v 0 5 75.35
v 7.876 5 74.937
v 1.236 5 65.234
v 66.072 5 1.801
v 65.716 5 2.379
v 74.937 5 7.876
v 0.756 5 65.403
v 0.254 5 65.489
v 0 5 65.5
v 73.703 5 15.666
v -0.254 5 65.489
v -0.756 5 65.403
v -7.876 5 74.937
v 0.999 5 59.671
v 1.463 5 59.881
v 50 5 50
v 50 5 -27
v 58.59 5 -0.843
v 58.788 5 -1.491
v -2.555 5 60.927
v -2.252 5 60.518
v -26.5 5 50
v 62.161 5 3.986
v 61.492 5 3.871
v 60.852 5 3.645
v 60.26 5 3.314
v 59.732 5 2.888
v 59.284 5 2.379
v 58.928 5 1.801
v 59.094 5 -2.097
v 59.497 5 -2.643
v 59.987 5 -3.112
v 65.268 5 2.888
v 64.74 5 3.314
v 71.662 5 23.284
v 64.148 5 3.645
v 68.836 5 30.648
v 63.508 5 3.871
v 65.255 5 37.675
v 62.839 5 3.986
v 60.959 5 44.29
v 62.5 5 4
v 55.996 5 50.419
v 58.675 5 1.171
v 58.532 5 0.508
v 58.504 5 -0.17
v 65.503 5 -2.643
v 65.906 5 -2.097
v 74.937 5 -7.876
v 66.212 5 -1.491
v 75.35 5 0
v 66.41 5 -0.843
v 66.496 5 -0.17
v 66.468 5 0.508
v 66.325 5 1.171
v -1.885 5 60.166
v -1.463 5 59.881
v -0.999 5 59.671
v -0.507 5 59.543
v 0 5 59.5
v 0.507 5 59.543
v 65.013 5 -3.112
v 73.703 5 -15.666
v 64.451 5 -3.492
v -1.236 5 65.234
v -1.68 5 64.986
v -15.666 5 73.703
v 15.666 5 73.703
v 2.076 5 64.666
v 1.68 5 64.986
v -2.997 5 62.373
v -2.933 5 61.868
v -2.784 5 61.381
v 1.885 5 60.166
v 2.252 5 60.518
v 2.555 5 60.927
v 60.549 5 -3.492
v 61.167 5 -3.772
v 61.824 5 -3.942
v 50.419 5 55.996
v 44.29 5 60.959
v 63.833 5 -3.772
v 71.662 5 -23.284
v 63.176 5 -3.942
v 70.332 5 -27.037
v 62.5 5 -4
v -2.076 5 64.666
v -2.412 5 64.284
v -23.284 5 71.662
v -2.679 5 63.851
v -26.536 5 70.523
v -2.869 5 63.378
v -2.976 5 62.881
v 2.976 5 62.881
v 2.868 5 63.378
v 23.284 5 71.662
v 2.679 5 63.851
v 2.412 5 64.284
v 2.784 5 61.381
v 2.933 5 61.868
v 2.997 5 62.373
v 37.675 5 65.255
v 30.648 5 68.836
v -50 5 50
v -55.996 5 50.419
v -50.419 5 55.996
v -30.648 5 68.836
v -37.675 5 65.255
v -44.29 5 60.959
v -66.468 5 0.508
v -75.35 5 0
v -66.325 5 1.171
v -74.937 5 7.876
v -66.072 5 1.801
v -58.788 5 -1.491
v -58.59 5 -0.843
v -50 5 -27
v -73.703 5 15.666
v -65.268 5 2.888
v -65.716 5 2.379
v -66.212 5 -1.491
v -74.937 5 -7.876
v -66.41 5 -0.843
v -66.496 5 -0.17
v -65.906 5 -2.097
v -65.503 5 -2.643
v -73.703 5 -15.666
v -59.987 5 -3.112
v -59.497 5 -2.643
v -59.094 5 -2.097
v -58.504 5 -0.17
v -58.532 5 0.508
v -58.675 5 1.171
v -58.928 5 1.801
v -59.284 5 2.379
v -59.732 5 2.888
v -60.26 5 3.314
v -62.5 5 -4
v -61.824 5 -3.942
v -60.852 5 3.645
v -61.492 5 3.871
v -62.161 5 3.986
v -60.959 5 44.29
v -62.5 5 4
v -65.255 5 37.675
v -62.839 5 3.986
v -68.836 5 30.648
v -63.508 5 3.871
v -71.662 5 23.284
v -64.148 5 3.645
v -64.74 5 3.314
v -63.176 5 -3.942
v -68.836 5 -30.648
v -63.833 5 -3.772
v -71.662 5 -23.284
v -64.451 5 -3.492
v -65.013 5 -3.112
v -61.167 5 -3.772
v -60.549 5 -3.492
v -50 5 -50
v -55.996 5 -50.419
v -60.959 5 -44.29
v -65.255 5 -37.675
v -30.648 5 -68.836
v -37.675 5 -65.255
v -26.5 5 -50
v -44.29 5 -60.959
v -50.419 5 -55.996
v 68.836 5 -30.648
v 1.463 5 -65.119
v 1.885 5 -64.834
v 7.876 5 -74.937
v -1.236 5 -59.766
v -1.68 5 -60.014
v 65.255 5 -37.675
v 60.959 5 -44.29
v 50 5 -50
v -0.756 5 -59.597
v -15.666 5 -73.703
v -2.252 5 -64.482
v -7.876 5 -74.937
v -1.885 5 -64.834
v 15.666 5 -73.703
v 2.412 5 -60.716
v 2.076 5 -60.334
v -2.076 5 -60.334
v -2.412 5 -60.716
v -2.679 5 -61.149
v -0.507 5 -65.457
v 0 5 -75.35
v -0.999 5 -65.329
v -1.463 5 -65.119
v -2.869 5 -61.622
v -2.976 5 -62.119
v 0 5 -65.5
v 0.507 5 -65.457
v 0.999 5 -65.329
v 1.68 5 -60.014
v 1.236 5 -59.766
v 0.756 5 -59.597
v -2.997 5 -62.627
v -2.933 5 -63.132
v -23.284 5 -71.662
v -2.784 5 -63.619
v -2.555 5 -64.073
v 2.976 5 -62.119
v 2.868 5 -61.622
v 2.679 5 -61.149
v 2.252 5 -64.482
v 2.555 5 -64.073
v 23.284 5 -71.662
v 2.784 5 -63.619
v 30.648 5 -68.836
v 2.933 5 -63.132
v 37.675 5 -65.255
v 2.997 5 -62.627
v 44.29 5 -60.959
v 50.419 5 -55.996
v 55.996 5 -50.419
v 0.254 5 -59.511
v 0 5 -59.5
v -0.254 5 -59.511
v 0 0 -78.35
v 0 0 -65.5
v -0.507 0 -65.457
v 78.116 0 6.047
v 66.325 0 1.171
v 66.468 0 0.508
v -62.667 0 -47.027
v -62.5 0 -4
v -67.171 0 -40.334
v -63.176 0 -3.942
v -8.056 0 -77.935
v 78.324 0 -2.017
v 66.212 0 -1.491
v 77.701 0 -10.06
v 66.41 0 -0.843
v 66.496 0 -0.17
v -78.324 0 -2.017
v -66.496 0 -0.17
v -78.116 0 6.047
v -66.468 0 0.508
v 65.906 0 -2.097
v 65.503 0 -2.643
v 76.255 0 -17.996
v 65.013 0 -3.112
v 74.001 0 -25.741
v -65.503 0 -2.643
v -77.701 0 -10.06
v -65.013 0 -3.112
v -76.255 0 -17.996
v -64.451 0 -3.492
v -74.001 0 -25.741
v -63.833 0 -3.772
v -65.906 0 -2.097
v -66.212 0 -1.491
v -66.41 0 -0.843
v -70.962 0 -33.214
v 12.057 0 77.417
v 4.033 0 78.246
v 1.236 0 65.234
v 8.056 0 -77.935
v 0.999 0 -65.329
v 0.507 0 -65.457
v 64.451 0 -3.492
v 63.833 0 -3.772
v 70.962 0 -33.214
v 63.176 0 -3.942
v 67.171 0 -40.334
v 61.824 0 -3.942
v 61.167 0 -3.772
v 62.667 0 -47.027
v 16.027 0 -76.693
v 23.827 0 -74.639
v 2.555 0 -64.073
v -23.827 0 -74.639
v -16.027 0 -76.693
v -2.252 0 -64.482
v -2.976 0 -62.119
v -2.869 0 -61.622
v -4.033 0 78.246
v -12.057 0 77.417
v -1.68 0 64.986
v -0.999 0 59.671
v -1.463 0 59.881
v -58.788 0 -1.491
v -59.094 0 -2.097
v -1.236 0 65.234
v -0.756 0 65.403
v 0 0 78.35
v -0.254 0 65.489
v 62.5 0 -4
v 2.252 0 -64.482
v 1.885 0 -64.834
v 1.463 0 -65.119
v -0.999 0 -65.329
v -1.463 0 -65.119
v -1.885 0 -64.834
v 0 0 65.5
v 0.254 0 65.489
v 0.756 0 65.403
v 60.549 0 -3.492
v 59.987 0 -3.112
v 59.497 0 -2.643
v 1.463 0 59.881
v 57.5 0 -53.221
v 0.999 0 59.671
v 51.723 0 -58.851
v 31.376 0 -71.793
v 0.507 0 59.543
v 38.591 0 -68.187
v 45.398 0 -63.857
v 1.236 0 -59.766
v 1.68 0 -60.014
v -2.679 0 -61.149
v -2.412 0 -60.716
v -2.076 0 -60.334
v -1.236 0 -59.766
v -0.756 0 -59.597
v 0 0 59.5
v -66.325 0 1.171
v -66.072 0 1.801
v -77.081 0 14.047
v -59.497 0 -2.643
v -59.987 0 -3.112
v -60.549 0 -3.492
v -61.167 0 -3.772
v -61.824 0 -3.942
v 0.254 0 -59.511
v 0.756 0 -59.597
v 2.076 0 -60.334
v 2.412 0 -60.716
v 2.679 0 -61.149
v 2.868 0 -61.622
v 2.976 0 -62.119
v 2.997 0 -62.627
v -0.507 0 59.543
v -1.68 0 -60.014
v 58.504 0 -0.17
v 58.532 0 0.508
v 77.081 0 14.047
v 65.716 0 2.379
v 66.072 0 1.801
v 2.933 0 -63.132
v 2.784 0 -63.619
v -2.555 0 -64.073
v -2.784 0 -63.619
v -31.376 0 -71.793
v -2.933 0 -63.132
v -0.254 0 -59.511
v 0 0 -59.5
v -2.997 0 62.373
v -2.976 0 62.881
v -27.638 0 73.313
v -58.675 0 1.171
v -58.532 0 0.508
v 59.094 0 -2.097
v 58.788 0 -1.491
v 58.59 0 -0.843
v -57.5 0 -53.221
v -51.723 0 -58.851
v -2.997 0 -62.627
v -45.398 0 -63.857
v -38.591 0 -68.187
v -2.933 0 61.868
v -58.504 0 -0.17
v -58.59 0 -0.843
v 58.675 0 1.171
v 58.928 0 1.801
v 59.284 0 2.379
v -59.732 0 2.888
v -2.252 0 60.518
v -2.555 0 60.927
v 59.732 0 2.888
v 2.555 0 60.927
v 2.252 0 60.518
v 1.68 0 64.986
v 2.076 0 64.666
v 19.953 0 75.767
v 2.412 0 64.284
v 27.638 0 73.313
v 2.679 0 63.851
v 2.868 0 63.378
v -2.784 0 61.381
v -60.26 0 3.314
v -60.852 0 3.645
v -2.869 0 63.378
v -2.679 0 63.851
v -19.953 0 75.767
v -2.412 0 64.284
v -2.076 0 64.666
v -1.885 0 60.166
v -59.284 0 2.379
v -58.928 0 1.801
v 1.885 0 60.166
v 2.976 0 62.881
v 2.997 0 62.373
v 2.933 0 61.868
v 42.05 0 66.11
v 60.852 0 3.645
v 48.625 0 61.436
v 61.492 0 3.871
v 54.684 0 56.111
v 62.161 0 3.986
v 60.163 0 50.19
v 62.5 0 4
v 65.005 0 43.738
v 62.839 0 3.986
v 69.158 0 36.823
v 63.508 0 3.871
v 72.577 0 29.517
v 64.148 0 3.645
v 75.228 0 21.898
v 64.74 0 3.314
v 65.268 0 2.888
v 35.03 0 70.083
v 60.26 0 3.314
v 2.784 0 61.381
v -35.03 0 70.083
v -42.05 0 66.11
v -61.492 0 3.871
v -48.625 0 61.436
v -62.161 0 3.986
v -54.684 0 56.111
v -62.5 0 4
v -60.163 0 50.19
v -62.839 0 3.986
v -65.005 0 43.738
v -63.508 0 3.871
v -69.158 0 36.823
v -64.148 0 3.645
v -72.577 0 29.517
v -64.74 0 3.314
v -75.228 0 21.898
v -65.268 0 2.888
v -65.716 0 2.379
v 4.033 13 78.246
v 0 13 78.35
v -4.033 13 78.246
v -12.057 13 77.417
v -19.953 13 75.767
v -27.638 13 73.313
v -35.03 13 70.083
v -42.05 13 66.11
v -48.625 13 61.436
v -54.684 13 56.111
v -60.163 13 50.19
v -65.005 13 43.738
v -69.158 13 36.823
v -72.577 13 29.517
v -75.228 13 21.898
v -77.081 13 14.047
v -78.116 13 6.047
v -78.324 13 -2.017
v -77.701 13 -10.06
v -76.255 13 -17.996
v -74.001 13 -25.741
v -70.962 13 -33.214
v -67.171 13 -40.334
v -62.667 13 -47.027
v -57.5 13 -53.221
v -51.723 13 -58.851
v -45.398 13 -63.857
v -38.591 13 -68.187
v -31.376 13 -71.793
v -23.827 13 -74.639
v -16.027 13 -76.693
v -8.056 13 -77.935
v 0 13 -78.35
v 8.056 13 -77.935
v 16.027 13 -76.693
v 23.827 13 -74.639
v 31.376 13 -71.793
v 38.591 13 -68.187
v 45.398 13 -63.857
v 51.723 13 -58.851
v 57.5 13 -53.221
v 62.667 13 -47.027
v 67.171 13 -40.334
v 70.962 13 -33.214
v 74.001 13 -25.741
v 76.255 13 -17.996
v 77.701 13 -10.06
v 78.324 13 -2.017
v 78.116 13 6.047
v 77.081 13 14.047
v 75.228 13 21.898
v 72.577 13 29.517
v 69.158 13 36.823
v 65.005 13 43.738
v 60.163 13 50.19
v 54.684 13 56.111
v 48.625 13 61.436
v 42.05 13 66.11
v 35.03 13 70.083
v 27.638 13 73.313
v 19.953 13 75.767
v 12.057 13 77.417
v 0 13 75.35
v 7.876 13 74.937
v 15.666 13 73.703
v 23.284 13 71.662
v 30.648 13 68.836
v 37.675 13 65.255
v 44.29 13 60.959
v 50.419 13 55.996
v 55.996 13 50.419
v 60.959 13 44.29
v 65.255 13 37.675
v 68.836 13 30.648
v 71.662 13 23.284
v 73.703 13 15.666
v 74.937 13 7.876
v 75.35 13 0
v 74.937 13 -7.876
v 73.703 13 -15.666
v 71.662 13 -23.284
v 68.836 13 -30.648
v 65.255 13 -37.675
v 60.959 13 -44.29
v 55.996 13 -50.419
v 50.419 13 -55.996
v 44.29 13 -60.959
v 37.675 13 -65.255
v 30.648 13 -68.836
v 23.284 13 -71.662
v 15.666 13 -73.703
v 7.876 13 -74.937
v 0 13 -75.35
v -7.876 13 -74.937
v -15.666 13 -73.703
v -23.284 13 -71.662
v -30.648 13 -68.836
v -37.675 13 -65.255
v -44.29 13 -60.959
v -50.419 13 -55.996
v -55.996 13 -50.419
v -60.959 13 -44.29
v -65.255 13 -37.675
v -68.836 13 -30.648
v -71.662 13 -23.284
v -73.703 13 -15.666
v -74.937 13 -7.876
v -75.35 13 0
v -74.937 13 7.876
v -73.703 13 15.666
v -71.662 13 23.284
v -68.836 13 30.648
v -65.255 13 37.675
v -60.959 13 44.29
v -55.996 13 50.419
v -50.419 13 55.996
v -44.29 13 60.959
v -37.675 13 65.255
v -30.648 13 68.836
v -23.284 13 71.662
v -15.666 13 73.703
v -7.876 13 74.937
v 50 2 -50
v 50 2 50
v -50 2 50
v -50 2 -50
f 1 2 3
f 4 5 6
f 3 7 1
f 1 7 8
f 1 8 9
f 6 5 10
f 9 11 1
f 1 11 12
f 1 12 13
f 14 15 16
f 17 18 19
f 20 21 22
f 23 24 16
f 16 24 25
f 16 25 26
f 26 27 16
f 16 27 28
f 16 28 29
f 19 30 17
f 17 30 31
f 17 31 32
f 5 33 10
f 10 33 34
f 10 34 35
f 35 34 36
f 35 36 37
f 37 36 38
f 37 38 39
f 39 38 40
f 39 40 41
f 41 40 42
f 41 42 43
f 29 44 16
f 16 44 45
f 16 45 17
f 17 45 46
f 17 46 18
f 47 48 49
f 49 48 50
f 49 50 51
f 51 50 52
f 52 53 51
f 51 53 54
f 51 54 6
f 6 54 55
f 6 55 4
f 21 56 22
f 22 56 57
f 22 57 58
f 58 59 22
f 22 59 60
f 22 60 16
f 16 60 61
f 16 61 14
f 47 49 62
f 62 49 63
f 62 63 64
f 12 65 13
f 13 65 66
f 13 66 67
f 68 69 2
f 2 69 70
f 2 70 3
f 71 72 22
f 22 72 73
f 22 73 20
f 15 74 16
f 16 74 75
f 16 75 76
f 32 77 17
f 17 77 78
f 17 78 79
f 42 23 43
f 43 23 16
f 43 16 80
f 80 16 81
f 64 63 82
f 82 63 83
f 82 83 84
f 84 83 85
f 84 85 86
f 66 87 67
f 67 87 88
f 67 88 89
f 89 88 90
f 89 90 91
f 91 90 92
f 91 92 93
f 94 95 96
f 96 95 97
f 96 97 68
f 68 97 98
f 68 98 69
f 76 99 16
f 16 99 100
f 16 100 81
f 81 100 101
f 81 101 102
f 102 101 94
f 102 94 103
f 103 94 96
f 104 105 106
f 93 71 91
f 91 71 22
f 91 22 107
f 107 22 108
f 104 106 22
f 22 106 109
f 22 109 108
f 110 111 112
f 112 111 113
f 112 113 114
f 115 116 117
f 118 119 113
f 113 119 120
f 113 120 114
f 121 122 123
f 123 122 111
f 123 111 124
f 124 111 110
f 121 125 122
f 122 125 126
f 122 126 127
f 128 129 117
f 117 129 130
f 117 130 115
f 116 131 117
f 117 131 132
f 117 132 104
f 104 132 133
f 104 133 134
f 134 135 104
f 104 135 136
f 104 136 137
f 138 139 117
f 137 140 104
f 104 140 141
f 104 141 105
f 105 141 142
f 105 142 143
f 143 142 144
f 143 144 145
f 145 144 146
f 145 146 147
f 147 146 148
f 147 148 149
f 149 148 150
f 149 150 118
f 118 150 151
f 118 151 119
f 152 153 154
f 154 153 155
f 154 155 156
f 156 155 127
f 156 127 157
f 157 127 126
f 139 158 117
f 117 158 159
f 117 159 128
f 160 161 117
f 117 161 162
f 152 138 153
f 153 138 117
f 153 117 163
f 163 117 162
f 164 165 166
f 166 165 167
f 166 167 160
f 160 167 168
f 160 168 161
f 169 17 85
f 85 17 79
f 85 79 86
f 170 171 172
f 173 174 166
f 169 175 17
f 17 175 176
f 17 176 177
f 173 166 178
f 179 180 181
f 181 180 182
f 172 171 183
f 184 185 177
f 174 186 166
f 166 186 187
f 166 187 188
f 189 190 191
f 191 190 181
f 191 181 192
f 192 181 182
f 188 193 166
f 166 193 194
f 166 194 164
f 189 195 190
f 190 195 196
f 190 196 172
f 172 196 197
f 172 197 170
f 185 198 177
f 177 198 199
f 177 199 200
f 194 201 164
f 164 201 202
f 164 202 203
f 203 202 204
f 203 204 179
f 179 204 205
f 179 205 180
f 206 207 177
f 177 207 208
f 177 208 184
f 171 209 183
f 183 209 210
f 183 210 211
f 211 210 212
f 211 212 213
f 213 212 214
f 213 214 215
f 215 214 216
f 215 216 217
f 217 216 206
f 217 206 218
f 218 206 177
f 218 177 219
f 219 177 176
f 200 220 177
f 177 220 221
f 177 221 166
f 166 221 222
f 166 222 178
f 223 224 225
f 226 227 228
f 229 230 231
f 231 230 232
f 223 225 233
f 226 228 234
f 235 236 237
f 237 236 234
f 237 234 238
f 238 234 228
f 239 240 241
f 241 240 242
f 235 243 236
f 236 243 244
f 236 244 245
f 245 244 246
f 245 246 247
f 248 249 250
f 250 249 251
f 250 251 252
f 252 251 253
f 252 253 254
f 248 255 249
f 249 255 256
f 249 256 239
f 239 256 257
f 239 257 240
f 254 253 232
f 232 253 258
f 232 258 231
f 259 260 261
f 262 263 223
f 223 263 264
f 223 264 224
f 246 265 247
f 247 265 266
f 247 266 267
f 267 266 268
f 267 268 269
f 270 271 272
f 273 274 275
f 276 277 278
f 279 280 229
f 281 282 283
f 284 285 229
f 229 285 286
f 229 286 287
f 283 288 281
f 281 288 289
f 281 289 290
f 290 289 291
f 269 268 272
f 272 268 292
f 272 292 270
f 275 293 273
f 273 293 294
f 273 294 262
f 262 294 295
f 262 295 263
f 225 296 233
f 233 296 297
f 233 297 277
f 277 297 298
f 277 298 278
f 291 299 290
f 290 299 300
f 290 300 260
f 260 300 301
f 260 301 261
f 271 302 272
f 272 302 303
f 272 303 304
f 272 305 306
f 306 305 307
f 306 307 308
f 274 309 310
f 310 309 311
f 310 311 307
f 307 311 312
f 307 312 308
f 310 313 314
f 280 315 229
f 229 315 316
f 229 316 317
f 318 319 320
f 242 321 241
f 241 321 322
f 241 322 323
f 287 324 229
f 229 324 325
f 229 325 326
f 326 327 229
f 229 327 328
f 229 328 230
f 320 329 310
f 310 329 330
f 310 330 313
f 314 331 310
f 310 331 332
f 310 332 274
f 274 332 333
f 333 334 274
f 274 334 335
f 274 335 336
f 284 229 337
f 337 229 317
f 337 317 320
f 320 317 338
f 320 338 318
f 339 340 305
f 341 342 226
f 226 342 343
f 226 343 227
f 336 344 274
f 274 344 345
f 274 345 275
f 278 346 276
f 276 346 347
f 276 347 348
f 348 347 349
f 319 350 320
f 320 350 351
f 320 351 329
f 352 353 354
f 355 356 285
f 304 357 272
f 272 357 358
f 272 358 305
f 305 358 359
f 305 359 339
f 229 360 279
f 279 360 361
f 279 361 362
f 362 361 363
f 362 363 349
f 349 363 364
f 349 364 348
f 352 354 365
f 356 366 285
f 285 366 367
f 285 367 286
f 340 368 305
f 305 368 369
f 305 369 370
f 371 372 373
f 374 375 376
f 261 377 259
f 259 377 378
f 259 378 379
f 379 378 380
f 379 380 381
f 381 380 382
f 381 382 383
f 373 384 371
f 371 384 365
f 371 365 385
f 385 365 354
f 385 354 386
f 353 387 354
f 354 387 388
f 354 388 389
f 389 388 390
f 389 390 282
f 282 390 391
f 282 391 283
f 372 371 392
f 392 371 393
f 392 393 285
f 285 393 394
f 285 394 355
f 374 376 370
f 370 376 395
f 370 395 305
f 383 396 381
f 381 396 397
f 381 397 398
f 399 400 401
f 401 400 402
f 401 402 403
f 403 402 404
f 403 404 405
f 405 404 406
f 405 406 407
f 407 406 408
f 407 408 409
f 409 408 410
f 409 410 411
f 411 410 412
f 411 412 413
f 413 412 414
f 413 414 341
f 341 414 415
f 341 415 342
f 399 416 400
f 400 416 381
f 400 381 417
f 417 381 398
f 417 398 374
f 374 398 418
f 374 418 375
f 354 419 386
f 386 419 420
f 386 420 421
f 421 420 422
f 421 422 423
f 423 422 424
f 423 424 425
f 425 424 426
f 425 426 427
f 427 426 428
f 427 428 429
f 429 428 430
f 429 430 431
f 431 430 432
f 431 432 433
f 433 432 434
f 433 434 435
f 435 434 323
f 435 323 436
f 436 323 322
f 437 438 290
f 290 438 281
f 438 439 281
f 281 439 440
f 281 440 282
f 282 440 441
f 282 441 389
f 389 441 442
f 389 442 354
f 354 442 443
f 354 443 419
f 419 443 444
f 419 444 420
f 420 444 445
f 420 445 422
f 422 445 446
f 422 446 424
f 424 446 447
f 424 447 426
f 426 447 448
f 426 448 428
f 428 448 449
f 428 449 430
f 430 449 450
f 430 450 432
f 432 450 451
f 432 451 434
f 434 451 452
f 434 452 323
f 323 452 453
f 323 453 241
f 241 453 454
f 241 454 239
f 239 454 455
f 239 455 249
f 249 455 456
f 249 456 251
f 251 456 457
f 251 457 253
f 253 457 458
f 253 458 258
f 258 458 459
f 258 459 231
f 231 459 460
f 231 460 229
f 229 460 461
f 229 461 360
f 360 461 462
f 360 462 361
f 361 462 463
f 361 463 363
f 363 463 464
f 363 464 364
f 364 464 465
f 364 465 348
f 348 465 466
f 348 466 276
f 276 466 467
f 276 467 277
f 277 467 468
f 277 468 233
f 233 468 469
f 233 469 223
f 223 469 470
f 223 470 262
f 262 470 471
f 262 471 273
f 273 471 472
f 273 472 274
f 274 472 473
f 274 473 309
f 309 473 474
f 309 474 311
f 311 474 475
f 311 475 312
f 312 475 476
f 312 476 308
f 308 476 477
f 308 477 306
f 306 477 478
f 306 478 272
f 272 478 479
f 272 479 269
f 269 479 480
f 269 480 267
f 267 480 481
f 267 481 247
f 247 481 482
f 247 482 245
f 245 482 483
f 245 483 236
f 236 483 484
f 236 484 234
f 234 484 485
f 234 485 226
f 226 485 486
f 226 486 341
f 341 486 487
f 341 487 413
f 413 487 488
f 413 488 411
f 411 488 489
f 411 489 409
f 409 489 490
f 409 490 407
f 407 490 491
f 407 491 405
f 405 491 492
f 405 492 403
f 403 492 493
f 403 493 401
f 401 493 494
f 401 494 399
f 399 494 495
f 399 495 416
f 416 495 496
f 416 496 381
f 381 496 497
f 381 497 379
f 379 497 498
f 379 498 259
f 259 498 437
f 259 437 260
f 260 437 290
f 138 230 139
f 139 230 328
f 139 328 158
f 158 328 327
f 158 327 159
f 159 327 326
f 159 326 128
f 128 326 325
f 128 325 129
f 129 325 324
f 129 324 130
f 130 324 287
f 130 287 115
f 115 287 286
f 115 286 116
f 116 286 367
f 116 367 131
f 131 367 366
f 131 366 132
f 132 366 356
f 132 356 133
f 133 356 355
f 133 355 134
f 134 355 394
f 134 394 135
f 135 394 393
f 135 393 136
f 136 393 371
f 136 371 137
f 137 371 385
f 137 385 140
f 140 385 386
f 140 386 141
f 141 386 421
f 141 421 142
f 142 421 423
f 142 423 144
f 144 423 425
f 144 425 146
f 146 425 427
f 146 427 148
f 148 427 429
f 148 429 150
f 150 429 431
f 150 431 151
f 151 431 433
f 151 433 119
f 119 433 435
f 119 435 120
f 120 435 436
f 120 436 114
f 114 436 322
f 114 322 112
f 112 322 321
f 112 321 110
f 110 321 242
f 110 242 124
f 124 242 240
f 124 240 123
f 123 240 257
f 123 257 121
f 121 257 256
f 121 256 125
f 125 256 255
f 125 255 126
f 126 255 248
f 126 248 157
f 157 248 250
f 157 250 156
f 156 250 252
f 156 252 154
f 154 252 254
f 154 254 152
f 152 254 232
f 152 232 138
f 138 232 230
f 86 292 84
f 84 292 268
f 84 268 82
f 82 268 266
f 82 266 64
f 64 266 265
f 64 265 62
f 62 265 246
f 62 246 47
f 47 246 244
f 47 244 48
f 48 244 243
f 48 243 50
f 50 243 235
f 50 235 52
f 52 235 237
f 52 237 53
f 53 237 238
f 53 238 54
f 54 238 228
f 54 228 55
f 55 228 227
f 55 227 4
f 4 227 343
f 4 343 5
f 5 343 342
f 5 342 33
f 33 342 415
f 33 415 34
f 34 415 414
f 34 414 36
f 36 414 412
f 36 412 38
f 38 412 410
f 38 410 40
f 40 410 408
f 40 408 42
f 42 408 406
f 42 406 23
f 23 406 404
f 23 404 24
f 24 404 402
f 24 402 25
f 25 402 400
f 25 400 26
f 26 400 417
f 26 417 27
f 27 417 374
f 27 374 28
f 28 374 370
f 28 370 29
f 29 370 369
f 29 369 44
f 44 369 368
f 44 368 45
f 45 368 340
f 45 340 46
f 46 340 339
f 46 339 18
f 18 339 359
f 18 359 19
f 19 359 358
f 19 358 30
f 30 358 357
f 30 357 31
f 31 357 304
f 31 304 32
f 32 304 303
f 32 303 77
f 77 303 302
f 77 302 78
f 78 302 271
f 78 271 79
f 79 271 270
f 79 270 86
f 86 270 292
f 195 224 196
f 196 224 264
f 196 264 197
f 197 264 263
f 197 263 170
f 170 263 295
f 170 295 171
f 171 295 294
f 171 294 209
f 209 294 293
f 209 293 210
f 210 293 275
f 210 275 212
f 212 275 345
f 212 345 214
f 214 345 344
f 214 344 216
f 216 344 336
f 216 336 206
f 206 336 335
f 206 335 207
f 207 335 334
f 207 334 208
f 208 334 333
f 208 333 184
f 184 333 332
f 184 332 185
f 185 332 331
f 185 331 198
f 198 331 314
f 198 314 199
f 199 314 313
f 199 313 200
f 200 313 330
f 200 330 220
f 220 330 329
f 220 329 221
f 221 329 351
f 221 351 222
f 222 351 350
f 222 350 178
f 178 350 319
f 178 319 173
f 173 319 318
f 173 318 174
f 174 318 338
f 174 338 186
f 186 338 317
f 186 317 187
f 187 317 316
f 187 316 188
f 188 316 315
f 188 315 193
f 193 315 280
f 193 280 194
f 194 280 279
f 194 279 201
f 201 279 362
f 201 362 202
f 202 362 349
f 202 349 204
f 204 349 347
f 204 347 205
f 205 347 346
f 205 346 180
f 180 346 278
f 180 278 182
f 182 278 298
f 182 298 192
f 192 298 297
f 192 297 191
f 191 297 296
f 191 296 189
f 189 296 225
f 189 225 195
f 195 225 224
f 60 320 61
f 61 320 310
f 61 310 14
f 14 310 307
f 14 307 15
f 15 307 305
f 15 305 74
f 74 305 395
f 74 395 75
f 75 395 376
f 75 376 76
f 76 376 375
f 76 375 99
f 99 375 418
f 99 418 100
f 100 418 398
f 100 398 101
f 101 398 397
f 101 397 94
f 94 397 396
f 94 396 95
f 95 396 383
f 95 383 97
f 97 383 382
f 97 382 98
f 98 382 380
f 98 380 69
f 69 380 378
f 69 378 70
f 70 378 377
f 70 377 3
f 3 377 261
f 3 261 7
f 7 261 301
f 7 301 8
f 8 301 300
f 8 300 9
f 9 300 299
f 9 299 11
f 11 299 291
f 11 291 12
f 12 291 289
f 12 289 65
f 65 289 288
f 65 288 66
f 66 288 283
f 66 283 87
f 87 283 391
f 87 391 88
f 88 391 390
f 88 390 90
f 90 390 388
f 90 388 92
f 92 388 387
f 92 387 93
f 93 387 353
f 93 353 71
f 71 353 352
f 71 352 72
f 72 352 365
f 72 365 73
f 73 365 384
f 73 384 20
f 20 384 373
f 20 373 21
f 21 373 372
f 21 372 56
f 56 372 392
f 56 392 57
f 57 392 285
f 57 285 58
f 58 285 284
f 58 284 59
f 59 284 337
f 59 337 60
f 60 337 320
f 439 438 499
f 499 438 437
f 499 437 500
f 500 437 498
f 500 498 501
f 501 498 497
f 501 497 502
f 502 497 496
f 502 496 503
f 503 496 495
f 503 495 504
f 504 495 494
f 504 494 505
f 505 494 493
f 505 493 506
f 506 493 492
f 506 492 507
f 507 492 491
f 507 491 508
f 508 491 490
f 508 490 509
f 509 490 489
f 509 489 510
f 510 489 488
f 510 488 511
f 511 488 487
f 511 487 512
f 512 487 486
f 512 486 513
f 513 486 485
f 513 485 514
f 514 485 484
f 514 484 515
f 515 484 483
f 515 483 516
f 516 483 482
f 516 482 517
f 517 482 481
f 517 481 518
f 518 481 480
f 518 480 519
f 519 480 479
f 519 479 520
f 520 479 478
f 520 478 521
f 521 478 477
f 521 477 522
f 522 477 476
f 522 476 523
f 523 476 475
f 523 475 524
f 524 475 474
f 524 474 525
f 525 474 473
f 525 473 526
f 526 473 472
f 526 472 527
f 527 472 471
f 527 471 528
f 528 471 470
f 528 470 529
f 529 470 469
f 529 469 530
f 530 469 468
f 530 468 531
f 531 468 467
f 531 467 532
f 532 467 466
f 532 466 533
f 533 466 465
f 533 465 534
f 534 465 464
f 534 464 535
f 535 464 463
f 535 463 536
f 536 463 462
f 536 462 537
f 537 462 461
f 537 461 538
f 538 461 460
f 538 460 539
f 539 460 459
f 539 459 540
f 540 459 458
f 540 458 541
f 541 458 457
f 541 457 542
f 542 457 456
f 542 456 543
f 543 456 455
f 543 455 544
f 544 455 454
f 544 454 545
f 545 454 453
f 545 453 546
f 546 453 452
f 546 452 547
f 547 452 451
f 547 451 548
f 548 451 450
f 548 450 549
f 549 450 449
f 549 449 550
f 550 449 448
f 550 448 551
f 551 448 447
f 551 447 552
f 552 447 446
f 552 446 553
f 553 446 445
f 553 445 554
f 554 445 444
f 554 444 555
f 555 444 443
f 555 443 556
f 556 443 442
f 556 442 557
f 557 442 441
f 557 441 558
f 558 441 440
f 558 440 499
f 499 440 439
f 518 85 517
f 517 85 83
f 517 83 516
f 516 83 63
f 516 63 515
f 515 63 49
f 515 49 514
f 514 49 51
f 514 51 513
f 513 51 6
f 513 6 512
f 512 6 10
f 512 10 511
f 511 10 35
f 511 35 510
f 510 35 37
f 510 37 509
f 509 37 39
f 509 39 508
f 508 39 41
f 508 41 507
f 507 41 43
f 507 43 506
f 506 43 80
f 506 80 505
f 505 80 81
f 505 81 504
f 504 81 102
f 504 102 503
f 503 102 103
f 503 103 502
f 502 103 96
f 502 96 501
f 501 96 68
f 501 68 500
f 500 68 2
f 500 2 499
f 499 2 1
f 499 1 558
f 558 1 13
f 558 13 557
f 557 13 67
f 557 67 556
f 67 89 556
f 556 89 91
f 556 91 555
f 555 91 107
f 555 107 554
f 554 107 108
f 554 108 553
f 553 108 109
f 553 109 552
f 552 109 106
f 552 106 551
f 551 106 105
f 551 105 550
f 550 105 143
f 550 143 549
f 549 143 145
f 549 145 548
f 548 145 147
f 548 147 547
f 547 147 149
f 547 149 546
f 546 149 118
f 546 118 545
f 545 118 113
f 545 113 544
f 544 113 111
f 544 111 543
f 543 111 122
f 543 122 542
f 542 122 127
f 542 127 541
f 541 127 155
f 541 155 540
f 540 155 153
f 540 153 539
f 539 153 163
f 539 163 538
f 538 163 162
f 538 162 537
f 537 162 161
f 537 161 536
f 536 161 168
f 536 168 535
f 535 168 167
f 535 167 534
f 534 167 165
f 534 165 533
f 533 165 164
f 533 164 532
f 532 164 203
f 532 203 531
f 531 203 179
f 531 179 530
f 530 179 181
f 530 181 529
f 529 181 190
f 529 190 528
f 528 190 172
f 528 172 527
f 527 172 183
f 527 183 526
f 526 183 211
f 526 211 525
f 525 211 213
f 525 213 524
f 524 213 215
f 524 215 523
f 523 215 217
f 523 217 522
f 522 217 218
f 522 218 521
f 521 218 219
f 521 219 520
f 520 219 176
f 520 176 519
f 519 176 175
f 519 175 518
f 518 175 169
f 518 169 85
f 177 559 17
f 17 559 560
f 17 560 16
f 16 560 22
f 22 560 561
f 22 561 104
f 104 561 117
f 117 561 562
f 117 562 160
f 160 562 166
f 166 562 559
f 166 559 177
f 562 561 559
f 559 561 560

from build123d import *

# Parameters (mm, degrees)
SKETCH1_R           = 78.35
SKETCH1_R_2         = 4
SKETCH1_R_3         = 3
BOSS_EXTRUDE1_DEPTH = 5
SKETCH2_R           = 78.35
SKETCH2_R_2         = 75.35
BOSS_EXTRUDE2_DEPTH = 8
SKETCH3_W           = 100
SKETCH3_H           = 100
CUT_EXTRUDE1_DEPTH  = 3


with BuildPart() as part:
    # Sketch1 → Boss-Extrude1 (new body)
    with BuildSketch(Plane(origin=(0, 0, 0), x_dir=(1, 0, 0), z_dir=(0, 1, 0))):
        with Locations(Location((0, 0, 0), (0, 0, 270))):
            Circle(SKETCH1_R)
        with Locations(Location((-62.5, 0, 0), (0, 0, 270))):
            Circle(SKETCH1_R_2, mode=Mode.SUBTRACT)
        with Locations(Location((62.5, 0, 0), (0, 0, 270))):
            Circle(SKETCH1_R_2, mode=Mode.SUBTRACT)
        with Locations(Location((0, 62.5, 0), (0, 0, 270))):
            Circle(SKETCH1_R_3, mode=Mode.SUBTRACT)
        with Locations(Location((0, -62.5, 0), (0, 0, 270))):
            Circle(SKETCH1_R_3, mode=Mode.SUBTRACT)
    extrude(amount=BOSS_EXTRUDE1_DEPTH)

    # Sketch2 → Boss-Extrude2 (add)
    with BuildSketch(Plane(origin=(0, 5, 0), x_dir=(1, 0, 0), z_dir=(0, 1, 0))):
        with Locations(Location((0, 0, 0), (0, 0, 270))):
            Circle(SKETCH2_R)
        with Locations(Location((0, 0, 0), (0, 0, 270))):
            Circle(SKETCH2_R_2, mode=Mode.SUBTRACT)
    extrude(amount=BOSS_EXTRUDE2_DEPTH)

    # Sketch3 → Cut-Extrude1 (cut)
    with BuildSketch(Plane(origin=(0, 5, 0), x_dir=(1, 0, 0), z_dir=(0, 1, 0))):
        Rectangle(SKETCH3_W, SKETCH3_H)
    extrude(amount=-CUT_EXTRUDE1_DEPTH, mode=Mode.SUBTRACT)


solid = part.part
